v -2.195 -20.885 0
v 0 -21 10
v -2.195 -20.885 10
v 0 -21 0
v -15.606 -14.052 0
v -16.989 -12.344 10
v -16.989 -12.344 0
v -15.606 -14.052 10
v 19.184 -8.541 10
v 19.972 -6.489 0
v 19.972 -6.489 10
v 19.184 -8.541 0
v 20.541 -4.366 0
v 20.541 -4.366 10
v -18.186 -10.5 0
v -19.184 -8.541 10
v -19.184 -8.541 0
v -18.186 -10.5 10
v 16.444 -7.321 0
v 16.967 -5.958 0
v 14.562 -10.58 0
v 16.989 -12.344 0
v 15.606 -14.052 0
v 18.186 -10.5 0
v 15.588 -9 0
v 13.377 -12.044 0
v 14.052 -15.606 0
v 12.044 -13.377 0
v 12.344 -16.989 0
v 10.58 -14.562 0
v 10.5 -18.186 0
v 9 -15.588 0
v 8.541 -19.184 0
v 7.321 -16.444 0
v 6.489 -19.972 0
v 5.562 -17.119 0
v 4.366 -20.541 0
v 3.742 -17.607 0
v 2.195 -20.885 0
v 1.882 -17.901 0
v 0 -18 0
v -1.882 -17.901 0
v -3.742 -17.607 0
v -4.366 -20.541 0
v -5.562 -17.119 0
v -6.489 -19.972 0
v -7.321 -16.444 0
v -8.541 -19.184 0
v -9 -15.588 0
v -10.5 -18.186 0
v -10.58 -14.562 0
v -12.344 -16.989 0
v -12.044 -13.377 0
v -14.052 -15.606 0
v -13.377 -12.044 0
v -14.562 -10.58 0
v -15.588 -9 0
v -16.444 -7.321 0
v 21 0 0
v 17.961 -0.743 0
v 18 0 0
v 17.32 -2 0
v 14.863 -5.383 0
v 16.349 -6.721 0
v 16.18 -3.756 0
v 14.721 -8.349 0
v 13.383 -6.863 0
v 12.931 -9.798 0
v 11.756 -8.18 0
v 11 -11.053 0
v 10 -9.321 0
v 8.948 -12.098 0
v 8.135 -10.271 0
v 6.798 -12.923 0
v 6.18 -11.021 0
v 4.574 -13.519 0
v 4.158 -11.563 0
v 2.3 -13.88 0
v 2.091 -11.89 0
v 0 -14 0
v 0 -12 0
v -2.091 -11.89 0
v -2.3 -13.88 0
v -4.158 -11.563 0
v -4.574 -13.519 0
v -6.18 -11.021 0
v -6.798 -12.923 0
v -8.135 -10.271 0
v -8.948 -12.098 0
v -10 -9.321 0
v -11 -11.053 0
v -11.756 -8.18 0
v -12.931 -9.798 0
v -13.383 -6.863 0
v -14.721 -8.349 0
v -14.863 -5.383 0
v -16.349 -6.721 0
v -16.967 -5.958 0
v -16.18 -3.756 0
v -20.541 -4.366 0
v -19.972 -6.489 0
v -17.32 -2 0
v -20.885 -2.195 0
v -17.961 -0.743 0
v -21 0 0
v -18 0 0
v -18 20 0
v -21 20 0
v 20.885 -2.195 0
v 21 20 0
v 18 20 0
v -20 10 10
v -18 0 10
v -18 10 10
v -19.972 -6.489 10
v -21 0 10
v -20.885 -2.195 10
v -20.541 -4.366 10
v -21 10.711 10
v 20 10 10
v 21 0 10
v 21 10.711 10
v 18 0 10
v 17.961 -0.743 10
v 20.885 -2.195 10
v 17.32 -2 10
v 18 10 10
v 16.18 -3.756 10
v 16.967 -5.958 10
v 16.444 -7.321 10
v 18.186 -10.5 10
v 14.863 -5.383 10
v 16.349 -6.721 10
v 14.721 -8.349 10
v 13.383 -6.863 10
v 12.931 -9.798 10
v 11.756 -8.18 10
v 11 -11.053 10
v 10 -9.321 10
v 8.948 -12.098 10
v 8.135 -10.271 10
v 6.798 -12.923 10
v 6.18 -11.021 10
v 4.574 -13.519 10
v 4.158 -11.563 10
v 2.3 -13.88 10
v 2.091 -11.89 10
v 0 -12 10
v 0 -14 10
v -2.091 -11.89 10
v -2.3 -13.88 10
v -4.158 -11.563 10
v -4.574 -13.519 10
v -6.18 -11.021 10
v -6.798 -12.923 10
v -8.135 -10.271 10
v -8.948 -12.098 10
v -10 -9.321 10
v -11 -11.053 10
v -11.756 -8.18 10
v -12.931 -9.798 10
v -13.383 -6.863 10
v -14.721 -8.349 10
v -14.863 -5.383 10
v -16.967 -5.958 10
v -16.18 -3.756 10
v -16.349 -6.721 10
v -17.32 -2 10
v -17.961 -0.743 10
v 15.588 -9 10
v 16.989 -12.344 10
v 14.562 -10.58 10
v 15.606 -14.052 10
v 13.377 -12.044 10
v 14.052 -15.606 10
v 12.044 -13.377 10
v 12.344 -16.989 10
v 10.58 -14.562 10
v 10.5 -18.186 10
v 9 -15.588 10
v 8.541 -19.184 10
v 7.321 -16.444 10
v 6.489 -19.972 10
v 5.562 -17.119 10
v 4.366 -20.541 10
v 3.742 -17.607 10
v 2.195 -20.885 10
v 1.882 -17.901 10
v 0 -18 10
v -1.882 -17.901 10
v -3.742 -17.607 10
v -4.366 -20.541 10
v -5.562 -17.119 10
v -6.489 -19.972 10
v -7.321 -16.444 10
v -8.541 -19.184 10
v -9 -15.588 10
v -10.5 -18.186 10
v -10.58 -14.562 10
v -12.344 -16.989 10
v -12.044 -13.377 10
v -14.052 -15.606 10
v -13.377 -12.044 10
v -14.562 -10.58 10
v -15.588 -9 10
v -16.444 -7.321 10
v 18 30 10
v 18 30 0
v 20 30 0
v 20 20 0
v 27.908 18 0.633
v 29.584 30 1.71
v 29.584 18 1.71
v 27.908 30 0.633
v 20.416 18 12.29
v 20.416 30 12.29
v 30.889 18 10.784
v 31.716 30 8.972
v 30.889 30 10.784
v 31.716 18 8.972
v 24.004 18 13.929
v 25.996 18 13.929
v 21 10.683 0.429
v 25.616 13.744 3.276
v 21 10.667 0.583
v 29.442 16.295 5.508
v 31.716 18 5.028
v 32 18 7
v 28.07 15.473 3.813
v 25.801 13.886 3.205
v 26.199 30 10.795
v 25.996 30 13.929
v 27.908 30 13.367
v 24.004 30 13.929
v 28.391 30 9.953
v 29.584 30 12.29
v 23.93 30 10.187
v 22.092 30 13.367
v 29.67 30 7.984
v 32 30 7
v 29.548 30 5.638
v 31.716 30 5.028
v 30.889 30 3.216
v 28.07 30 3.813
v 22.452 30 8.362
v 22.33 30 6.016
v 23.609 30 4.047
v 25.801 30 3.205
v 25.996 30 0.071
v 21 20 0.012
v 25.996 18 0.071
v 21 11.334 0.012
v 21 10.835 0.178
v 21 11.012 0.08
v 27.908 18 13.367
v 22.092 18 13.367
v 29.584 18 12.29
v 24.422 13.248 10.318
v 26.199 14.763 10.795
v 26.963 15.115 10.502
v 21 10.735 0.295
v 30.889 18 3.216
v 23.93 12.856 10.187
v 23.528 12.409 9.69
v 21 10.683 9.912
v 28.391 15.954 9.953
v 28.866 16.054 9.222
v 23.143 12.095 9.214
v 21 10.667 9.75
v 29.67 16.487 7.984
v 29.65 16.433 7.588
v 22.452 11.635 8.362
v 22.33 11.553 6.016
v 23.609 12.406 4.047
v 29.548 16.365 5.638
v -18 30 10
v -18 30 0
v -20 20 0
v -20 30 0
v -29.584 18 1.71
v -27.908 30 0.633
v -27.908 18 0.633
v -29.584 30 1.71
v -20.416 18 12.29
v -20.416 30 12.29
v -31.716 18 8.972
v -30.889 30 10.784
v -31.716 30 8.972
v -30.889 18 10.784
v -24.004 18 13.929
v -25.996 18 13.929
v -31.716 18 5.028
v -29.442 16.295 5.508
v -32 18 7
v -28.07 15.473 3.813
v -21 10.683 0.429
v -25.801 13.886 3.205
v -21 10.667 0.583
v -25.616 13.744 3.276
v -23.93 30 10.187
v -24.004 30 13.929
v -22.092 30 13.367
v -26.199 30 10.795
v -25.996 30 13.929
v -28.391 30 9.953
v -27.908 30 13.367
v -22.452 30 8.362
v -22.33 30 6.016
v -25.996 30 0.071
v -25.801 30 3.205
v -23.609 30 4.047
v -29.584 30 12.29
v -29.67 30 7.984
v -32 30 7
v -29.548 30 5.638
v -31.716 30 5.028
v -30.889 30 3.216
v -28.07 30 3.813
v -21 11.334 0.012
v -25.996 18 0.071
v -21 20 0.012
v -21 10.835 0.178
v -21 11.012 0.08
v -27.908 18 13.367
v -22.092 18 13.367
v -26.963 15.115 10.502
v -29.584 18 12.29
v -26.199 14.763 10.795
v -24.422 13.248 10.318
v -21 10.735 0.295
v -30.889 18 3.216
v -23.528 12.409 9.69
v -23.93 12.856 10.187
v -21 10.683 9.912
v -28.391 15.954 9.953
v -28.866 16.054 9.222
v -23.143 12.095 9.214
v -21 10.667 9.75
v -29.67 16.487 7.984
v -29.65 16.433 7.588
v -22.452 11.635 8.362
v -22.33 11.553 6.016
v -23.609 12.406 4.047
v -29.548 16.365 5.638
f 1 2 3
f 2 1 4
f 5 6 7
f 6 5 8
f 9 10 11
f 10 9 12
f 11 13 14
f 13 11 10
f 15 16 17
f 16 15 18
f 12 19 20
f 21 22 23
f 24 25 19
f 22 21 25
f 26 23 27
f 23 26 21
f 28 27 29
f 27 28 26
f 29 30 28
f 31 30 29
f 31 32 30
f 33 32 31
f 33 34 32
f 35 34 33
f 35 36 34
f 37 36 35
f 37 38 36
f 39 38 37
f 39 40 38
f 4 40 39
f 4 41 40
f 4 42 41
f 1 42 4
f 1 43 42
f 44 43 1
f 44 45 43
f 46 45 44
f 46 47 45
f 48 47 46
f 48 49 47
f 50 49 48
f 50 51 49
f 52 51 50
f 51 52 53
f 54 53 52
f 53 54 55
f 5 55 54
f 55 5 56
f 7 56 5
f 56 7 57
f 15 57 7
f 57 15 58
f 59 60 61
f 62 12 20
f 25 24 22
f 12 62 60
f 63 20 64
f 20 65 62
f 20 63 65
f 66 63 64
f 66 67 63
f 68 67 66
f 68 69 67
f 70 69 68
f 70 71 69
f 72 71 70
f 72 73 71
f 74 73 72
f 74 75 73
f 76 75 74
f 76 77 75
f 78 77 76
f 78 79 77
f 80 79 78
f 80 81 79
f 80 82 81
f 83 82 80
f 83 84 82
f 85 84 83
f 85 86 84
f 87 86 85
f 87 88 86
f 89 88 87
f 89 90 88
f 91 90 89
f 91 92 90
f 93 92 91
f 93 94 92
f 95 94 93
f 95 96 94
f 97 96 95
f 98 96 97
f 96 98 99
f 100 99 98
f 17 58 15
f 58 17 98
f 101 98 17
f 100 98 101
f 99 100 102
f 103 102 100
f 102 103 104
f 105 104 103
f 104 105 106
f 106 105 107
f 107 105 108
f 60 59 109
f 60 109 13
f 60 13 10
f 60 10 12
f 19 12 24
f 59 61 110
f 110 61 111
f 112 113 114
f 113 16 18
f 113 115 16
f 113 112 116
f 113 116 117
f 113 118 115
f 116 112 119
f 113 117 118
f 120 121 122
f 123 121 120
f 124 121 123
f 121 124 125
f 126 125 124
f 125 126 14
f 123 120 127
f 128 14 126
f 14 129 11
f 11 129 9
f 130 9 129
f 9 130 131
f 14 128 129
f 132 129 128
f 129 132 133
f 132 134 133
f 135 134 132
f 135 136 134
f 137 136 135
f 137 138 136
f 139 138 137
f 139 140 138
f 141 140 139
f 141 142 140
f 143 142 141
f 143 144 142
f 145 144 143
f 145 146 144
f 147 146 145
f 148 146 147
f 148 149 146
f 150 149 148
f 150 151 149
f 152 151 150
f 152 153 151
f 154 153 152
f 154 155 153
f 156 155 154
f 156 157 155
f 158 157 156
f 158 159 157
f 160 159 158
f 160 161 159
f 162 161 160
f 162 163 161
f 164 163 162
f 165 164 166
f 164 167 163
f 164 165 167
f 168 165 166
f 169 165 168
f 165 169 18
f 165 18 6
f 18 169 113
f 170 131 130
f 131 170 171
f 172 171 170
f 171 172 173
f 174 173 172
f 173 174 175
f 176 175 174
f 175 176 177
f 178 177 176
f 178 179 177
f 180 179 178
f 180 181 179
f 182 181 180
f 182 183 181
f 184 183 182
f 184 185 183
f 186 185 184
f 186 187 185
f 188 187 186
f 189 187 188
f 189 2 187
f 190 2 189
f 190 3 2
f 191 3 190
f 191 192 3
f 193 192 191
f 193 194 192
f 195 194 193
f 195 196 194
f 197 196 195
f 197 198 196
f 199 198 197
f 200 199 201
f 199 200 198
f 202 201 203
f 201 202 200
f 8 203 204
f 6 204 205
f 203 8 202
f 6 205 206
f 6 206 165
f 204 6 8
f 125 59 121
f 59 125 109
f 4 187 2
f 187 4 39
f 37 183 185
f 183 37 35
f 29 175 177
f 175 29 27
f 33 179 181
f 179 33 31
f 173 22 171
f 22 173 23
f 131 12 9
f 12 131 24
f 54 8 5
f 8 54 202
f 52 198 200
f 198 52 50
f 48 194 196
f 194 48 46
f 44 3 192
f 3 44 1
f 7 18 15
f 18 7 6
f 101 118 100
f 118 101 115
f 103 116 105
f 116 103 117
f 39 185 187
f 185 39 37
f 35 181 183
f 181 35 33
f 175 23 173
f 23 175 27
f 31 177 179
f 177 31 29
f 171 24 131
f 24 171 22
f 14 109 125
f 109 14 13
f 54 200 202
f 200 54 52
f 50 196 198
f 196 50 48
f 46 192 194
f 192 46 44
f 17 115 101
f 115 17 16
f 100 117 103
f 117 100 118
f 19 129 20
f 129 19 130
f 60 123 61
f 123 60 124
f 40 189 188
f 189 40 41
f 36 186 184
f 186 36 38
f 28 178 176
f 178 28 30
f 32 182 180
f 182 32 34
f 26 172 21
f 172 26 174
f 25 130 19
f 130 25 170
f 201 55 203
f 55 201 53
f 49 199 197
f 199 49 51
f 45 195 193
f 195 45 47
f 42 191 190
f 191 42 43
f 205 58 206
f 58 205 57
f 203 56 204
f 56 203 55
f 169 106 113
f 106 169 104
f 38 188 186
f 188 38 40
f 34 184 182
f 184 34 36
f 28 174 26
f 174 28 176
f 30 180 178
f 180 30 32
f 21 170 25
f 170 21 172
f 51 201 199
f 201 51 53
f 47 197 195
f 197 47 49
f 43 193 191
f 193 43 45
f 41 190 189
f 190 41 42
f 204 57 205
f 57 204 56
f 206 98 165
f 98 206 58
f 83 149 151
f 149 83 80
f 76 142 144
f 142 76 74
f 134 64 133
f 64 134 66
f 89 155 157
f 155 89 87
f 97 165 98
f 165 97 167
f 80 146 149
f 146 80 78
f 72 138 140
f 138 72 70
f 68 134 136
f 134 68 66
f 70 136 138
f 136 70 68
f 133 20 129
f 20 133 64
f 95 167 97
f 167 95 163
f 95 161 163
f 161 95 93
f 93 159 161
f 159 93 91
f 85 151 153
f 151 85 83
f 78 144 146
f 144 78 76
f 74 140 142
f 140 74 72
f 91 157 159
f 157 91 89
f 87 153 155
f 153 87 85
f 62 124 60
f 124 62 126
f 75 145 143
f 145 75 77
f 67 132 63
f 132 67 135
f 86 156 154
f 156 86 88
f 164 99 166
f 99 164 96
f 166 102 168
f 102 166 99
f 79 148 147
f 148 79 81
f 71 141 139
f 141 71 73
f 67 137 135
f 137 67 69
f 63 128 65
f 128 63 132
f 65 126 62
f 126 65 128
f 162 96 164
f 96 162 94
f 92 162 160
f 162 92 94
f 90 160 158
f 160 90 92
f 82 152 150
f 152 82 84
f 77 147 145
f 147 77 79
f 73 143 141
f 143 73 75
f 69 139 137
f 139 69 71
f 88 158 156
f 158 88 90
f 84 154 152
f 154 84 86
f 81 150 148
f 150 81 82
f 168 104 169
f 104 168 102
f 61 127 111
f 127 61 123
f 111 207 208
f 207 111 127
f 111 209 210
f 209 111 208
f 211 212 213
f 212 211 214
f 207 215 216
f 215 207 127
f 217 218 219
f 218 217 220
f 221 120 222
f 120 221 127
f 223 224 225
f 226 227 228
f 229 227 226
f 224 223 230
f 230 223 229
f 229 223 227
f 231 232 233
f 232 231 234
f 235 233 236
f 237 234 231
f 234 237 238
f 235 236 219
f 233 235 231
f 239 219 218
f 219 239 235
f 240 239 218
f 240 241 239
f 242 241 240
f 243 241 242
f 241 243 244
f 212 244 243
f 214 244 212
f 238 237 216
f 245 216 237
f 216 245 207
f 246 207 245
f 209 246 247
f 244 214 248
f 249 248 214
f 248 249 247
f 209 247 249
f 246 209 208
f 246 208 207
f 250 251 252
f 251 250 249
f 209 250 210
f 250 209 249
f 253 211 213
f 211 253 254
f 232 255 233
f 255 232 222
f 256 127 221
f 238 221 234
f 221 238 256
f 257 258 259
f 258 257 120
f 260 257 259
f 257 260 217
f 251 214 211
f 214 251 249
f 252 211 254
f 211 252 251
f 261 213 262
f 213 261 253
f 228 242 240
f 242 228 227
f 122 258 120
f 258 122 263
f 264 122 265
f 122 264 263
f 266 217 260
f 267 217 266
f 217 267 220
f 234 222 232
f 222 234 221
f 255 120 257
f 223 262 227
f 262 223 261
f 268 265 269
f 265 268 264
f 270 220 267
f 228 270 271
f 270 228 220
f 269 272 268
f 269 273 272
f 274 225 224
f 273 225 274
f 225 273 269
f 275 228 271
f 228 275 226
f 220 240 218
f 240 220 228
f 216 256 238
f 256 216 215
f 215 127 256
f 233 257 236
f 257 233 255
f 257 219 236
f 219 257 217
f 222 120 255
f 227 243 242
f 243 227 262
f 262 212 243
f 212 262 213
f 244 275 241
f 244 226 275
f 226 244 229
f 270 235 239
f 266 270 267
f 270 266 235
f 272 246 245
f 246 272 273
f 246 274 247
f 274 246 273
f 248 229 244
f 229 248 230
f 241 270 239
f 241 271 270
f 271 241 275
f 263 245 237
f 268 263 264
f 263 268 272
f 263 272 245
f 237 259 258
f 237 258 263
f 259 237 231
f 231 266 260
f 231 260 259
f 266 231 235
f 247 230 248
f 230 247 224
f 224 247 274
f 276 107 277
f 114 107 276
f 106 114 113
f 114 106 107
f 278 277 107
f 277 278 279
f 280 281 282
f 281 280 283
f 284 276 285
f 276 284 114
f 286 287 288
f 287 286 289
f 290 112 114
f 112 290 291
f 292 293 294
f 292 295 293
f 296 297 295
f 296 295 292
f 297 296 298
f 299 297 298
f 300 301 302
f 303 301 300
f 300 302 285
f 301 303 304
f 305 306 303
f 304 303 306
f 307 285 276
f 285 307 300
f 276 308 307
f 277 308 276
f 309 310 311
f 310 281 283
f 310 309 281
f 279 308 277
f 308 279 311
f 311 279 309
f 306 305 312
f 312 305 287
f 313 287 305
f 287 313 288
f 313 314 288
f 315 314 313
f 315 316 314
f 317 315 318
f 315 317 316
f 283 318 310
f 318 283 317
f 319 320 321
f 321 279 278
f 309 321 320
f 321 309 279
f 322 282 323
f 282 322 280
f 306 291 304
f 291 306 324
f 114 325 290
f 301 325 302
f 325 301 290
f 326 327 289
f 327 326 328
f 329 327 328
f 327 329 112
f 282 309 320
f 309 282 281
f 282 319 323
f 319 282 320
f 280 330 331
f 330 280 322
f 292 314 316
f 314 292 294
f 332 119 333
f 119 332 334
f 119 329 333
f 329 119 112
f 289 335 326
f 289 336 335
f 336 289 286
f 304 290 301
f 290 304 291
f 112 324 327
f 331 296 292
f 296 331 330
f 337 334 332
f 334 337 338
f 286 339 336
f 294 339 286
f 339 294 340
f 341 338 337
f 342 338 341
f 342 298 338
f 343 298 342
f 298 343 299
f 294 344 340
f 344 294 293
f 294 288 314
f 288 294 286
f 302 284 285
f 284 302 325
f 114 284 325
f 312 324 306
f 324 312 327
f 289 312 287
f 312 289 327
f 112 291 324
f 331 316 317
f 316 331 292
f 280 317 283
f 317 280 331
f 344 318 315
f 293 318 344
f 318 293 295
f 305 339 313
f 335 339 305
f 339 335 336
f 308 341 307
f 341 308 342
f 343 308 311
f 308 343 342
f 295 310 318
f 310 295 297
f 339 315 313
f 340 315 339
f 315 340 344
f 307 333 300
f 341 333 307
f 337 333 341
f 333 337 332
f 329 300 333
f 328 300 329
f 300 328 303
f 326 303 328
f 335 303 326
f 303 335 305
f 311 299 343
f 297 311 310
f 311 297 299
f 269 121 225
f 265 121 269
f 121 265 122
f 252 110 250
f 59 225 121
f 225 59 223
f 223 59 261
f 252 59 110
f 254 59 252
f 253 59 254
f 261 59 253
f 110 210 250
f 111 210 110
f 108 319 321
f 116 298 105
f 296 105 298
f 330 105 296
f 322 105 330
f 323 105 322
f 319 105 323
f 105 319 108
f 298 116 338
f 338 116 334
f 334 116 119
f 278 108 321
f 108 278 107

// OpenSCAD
ro=20;

// Create the first leaf (outside) of the spring

module outerSpring() {
    difference(){
        cylinder(r=ro+1,h=10,$fn=60); //outer diameter
        cylinder(r=ro-2,h=10,$fn=60); //inner diameter
    }
}

// Create the second leaf (inside) of the spring
module innerSpring() {
    translate([0,8,0]) 
    difference(){
        cylinder(r=ro+2,h=10,$fn=60); //outer diameter
        cylinder(r=ro,h=10,$fn=60); //inner diameter
    }
}


// Create connector and hole for eartube.
module hole($rotate){
    radius = 7;
    difference() {
        hull(){
            translate([-radius,-radius,0]) cube([2,10,20]);
            cylinder(r=radius,h=12);
        }
        translate([1,0,0]) rotate([0,0,$rotate]) hull(){
        translate([0,0,-10])sphere(3.8
            ,$fn=10);//ear tube diameter
    translate([0,0,30])sphere(3.8,$fn=10);
       }//ear tube diameter
    }
 }

// Create the final piece

    difference(){

        // Springs
        union() {
            outerSpring();
            innerSpring();
       // cube(1);
            }
        union(){
        // Cuts
        translate([-45,0,0])cube([90,45,10]); //cut centre
        translate([ro+1,-ro,0])cube([90,45,10]); //cut left
        translate([-ro-90-1,-ro,0])cube([90,45,10]); //cut right
    }
}

    // Connectors
    translate([ro+5,30,7]) rotate([90,0,0]) hole(15);
    translate([-ro-5,30,7]) mirror([1,0,0]) rotate([90,0,0]) hole(15);
    
    //Connect connectors to springs
    translate([ro-2,0,0])cube([3,20,10]);
    translate([-ro-1,0,0])cube([3,20,10]);
